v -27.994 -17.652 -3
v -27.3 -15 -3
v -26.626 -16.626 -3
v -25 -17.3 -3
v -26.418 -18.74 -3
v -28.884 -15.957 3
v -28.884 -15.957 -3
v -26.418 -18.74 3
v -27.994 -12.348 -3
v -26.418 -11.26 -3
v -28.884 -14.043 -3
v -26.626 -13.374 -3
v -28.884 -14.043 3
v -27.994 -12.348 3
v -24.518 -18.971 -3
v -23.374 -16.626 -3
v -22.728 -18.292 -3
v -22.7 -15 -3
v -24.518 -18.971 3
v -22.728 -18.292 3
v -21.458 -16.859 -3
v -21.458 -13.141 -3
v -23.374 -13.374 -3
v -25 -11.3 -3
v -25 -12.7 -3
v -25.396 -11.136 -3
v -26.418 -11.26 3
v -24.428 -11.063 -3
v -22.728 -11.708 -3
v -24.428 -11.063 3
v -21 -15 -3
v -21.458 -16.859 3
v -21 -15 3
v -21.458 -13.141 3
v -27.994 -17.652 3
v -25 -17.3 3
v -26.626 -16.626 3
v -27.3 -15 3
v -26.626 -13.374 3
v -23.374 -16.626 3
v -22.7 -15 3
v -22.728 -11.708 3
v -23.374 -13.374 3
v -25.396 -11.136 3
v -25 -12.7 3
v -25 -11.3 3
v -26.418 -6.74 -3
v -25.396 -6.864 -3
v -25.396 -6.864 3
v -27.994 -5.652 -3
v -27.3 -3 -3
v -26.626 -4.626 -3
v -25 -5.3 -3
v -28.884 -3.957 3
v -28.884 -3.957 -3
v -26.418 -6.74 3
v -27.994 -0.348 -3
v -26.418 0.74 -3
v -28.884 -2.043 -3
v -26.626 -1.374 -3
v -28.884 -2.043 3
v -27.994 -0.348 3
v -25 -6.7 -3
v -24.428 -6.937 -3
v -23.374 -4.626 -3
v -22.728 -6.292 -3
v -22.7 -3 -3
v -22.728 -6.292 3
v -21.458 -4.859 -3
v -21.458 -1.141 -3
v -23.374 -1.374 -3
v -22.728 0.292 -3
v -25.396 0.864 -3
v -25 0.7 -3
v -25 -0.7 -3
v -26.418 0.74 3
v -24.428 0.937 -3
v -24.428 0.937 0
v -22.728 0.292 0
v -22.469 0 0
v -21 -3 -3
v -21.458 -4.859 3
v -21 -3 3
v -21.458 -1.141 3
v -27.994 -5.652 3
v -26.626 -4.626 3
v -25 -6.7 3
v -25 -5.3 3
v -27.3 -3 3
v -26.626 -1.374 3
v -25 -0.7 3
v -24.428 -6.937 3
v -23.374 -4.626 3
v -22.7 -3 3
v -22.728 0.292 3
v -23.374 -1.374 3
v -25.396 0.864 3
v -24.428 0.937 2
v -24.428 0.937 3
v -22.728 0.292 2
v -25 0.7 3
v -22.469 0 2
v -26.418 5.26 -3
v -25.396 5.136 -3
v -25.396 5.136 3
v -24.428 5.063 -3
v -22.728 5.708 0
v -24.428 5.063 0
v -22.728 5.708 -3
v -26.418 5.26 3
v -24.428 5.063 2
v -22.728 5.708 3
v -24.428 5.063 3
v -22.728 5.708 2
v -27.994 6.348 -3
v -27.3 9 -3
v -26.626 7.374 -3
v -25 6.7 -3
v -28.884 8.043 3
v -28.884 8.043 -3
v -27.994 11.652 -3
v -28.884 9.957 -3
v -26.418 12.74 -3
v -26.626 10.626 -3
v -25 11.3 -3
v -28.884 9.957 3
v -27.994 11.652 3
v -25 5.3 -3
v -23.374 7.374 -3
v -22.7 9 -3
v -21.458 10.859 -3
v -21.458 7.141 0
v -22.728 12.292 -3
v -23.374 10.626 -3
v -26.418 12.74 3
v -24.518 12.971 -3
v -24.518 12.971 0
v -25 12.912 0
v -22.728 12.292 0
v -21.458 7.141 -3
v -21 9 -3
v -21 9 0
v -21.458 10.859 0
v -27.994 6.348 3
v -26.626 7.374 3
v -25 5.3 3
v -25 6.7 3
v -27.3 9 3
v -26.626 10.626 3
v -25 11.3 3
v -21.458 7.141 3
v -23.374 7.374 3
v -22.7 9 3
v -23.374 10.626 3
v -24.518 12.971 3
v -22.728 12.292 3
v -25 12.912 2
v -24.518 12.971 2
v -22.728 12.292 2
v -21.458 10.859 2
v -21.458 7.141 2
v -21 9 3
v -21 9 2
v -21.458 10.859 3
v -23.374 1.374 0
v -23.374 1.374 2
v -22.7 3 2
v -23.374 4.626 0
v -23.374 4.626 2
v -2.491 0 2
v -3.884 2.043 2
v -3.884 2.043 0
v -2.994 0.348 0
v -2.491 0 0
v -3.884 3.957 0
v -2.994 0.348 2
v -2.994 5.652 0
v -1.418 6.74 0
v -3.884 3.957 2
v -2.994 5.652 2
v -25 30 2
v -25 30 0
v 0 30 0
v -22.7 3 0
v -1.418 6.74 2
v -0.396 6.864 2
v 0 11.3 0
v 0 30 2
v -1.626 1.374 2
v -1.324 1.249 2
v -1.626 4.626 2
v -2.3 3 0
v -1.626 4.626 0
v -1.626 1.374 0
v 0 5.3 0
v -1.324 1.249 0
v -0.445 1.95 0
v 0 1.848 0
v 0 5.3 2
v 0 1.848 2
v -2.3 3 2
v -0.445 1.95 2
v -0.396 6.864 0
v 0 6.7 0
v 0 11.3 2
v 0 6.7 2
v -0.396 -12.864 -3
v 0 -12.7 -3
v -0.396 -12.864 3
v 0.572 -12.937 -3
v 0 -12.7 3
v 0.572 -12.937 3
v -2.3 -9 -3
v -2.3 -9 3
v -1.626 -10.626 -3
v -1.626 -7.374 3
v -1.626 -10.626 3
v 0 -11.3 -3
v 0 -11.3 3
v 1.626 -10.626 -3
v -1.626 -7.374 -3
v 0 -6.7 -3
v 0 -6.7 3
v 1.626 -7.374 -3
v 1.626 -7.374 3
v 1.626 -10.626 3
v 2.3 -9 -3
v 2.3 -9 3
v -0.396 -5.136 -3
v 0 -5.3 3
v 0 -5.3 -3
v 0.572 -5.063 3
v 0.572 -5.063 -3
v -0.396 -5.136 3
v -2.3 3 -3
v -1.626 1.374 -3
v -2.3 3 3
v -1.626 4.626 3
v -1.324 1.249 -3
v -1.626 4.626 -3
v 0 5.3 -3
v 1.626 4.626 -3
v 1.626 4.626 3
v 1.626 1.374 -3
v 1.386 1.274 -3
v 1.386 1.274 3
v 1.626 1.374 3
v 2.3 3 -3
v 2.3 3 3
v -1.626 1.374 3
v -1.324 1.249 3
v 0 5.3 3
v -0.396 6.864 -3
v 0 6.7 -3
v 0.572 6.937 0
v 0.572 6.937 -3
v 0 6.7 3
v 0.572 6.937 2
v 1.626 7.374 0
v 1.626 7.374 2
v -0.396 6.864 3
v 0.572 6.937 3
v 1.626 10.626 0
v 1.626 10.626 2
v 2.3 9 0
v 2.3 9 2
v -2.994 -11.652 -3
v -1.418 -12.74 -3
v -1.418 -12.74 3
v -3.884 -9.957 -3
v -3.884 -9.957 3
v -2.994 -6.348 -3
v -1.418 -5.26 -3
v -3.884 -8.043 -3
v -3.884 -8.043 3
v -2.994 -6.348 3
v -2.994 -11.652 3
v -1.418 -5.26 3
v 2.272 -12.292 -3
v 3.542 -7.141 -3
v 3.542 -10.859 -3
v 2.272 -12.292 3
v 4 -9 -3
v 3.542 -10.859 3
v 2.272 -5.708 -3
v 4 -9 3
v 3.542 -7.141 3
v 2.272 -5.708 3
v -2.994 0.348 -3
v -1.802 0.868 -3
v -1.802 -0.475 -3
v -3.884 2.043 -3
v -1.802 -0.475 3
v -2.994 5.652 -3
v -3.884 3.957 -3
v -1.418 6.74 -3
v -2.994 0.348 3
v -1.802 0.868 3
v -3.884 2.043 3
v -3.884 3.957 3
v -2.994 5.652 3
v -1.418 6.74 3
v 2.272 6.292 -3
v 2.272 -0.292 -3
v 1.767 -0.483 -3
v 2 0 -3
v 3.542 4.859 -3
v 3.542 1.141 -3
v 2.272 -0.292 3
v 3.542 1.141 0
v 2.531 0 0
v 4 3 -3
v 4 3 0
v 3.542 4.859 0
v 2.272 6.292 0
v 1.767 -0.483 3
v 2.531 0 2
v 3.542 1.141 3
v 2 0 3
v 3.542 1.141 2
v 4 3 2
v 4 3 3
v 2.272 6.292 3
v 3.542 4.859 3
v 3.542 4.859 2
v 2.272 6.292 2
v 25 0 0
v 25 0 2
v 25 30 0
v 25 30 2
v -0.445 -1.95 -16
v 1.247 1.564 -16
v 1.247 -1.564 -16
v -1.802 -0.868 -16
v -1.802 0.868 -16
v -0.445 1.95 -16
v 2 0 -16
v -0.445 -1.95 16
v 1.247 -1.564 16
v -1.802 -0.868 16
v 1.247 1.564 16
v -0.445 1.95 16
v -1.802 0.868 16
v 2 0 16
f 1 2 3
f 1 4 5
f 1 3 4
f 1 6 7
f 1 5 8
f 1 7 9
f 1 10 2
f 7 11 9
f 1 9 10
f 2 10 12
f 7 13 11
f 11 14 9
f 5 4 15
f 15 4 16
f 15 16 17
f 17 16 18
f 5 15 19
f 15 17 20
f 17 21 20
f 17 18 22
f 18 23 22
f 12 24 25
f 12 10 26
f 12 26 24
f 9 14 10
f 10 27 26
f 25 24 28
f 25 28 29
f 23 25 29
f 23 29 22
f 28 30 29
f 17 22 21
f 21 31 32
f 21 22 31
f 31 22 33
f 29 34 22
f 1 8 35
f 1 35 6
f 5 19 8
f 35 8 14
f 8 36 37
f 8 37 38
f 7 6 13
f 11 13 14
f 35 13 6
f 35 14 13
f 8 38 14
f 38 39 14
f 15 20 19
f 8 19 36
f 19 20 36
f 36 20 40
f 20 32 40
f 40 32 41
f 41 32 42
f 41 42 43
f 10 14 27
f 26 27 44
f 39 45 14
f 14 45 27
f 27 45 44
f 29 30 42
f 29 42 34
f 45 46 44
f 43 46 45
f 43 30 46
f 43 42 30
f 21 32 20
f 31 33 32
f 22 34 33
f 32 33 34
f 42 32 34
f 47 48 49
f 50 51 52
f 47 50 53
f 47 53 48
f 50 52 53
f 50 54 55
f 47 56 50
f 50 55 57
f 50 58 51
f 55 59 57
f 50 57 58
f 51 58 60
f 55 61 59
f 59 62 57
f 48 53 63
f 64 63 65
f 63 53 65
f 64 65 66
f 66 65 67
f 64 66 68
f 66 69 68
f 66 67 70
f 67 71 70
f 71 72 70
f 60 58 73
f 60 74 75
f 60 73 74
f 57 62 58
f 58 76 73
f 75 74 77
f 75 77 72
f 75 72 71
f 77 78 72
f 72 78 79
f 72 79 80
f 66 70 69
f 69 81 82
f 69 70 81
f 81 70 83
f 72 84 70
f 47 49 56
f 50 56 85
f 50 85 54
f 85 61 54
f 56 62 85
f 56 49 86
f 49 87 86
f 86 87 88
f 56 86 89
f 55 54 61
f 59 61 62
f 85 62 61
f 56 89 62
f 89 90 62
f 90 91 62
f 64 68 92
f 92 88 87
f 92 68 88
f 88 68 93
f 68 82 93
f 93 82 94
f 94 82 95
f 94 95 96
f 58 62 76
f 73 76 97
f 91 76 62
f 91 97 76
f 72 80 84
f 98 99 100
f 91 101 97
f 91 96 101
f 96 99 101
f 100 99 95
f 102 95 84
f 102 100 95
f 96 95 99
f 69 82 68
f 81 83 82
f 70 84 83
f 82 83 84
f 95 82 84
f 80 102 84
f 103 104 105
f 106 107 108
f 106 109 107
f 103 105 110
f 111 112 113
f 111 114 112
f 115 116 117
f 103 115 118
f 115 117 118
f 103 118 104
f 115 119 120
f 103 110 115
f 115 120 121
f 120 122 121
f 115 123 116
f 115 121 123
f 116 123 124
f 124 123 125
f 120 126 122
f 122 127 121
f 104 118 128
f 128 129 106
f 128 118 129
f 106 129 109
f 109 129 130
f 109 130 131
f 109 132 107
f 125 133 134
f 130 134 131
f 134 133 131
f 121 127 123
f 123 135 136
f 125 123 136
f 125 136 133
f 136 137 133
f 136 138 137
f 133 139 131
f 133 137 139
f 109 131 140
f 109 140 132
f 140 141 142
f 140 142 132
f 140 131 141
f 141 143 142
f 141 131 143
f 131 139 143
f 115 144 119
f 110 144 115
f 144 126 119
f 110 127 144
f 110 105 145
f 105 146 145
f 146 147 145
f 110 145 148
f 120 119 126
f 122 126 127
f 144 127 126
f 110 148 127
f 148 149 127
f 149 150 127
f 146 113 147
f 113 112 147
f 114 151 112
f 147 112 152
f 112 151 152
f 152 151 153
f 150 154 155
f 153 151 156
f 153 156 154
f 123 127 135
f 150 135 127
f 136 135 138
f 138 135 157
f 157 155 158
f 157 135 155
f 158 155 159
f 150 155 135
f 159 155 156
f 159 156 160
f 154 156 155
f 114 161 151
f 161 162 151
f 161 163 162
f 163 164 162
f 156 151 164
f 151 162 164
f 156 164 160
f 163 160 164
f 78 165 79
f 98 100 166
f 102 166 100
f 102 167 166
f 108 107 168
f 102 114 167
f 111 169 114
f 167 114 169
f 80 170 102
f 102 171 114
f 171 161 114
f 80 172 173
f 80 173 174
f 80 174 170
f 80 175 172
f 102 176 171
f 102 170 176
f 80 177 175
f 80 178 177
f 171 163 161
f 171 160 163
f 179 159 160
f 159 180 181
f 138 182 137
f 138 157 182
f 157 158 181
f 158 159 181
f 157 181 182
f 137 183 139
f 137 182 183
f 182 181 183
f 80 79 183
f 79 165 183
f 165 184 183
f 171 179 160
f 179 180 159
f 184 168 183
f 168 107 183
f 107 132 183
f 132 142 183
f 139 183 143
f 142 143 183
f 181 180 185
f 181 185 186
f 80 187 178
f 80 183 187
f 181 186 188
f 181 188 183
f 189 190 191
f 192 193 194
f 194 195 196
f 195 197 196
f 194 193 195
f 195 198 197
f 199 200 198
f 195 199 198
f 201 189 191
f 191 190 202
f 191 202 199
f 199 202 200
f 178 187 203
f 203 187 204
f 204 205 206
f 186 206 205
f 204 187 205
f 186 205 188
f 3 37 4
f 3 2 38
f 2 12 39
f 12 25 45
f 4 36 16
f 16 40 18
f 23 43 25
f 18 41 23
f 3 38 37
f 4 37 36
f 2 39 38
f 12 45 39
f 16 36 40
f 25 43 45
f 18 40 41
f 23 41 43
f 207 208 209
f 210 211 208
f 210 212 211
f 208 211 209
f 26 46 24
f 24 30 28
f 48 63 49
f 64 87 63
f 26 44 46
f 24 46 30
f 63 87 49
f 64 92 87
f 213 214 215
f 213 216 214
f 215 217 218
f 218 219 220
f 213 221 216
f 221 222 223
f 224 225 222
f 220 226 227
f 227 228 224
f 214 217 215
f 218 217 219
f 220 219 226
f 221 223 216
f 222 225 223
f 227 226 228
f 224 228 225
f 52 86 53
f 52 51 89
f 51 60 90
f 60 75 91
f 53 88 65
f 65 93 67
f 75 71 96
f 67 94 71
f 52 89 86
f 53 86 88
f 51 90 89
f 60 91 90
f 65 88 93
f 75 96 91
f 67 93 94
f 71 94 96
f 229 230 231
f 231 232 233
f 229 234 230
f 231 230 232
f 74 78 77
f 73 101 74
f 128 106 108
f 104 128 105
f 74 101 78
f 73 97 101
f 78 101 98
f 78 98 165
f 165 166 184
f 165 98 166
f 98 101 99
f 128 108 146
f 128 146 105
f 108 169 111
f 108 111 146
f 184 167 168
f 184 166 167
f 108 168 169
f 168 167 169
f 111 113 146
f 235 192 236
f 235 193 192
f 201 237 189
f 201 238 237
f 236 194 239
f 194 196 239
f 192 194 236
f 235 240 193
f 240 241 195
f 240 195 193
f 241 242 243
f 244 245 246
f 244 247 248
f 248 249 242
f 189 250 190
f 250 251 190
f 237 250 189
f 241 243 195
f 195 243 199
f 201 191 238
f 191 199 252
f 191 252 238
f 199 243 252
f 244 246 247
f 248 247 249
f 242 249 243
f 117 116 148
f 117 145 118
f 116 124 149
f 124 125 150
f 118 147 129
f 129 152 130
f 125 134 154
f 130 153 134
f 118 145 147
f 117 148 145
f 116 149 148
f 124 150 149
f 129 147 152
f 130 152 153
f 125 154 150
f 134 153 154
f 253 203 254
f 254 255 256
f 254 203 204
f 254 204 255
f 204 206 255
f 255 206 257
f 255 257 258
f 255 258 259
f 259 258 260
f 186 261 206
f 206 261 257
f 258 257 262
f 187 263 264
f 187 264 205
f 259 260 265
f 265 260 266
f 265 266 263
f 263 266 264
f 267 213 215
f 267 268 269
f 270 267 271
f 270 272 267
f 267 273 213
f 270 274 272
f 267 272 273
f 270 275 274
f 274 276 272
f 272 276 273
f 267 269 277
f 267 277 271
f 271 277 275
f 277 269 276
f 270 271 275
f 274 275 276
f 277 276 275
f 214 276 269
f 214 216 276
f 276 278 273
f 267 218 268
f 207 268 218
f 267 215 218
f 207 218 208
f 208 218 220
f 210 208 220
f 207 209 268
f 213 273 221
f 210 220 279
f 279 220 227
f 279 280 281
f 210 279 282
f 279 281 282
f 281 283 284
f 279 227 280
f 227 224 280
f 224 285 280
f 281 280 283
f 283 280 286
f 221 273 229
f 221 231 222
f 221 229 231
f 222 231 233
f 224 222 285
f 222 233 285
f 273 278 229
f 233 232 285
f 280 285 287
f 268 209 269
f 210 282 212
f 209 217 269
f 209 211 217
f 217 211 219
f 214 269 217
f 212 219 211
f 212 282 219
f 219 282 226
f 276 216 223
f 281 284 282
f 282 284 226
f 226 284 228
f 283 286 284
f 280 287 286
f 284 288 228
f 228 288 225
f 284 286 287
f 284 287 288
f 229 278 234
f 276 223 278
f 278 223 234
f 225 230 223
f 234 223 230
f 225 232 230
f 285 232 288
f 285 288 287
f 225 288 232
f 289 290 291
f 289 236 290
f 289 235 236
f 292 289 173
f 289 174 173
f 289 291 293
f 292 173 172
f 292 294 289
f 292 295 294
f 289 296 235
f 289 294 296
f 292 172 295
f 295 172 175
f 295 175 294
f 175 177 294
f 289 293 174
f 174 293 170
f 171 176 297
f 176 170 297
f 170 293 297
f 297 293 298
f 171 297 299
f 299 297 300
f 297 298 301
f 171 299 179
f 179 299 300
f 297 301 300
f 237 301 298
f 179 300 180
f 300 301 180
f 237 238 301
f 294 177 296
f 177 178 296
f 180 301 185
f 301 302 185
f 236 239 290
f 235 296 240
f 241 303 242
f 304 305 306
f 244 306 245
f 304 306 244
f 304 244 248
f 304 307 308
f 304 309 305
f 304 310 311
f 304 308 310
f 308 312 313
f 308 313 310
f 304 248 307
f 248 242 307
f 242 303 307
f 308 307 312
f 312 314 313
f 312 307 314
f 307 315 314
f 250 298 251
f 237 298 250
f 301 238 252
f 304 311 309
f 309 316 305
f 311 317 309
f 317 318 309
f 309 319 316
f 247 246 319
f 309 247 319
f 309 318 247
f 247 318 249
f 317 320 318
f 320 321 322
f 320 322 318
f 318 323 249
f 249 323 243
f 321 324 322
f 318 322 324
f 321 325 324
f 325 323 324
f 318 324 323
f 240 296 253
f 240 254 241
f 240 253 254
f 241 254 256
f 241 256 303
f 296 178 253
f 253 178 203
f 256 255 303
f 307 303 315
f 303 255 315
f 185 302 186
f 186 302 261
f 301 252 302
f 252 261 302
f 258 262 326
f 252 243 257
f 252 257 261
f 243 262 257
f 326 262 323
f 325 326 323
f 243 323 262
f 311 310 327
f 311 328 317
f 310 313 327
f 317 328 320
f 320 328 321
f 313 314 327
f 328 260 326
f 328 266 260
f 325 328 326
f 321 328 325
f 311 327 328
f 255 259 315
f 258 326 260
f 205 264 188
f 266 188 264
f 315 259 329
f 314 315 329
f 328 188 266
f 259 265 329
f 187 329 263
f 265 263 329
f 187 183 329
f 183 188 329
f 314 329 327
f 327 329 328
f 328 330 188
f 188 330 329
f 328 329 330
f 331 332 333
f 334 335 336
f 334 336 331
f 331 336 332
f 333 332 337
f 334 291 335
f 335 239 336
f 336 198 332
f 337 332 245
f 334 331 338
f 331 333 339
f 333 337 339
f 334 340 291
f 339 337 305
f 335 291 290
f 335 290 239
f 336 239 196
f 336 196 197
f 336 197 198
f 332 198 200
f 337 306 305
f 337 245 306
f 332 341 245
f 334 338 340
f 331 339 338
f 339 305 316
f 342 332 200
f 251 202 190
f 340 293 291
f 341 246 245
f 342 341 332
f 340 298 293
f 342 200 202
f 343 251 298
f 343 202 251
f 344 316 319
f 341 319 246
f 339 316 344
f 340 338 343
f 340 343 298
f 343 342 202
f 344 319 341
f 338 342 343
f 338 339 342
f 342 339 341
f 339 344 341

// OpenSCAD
// 家具用小型バット蝶番 (Butt Hinge) - 180度開いた状態
// 3つのパーツ: 左板(Left Leaf), 右板(Right Leaf), ピン軸(Pin)

// --- パラメータ設定 ---
leaf_w = 25;          // 横幅 (回転方向)
leaf_h = 30;          // 縦幅 (ピン軸方向)
leaf_t = 2;           // 厚さ
pin_d = 4;            // ピン軸直径
pin_l = 32;           // ピン軸長さ
knuckle_d = 8;        // Knuckle外径
knuckle_id = 4.6;     // Knuckle内径 (4.0 + 0.3*2)
knuckle_h = 6;        // 各Knuckleの高さ (30mm / 5)
m3_hole_d = 3.2;      // M3貫通穴直径
m3_csc_d = 6;         // 皿穴直径
m3_csc_dep = 1;       // 皿穴深さ
m3_pitch = 8;         // 穴ピッチ

// --- モジュール定義 ---

// 皿穴と貫通穴
module m3_hole() {
    difference() {
        // 貫通穴
        cylinder(h = leaf_t + 1, d = m3_hole_d, center = false);
        // 皿穴 (表面から1mmのテーパー)
        translate([0, 0, -0.5])
            cylinder(h = m3_csc_dep + 0.5, d1 = m3_csc_d, d2 = m3_hole_d, center = false);
    }
}

// 片側の板 (Knuckleを含む)
module leaf_part(is_left = true) {
    side_x = is_left ? -1 : 1;
    
    difference() {
        union() {
            // 板本体
            cube([leaf_w, leaf_h, leaf_t], center = false);
            
            // Knuckleの配置
            // 左板は外側2個+中央1個 (位置: 0, 12, 24mm 相当)
            // 右板は中間2個 (位置: 6, 18mm 相当)
            // 全体中心をY=0とするため、各位置から15mm引く
            if (is_left) {
                for (y_pos = [0, 12, 24]) {
                    translate([0, y_pos - 15, 0])
                        cylinder(h = knuckle_h, d = knuckle_d, center = true);
                }
            } else {
                for (y_pos = [6, 18]) {
                    translate([0, y_pos - 15, 0])
                        cylinder(h = knuckle_h, d = knuckle_d, center = true);
                }
            }
        }
        
        // ピン軸の通り道（Knuckle内）をくり抜く
        // 全てのKnuckle位置(0, 6, 12, 18, 24)に対して穴をあける
        for (y_pos = [0, 6, 12, 18, 24]) {
            translate([0, y_pos - 15, 0])
                cylinder(h = knuckle_h + 1, d = knuckle_id, center = true);
        }
        
        // M3穴の配置 (Knuckleから離れた側)
        // 皿穴は表面（Z方向）に掘るため、板の厚み方向を考慮
        // 板の横幅方向（X方向）の端に配置
        for (y_pos = [-10, -2, 6]) {
            translate([is_left ? -leaf_w : leaf_w, y_pos, leaf_t/2])
                rotate([0, 90, 0])
                    m3_hole();
        }
    }
}

// --- 組み立て ---

// 左板 (x < 0)
translate([-leaf_w, 0, 0])
    leaf_part(is_left = true);

// 右板 (x > 0)
translate([0, 0, 0])
    leaf_part(is_left = false);

// ピン軸 (中心をY軸に重ねる)
// 長さ32mm、両端1mmずつKnuckleから飛び出す(Knuckle長30mm)
translate([0, 0, 0])
    cylinder(h = pin_l, d = pin_d, center = true);
